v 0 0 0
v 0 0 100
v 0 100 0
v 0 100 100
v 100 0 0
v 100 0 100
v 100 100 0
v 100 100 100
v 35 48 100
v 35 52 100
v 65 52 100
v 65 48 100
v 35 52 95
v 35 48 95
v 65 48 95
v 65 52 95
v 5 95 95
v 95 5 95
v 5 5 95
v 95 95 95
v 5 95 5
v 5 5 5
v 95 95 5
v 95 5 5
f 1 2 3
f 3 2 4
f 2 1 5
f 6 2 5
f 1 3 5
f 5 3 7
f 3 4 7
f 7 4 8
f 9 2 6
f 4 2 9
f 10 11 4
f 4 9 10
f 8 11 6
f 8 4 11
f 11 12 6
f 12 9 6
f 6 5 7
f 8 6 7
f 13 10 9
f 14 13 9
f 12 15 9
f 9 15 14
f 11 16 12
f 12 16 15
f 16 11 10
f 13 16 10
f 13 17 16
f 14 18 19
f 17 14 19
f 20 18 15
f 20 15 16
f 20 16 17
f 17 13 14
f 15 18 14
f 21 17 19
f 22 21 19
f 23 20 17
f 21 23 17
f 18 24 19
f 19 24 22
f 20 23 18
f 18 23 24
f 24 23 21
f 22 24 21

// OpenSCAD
difference(){
difference(){

cube(100);


translate([5,5,5])
cube(90);




}


translate([50-30/2,50-4/2,80])
cube([30,4,50]);
}
